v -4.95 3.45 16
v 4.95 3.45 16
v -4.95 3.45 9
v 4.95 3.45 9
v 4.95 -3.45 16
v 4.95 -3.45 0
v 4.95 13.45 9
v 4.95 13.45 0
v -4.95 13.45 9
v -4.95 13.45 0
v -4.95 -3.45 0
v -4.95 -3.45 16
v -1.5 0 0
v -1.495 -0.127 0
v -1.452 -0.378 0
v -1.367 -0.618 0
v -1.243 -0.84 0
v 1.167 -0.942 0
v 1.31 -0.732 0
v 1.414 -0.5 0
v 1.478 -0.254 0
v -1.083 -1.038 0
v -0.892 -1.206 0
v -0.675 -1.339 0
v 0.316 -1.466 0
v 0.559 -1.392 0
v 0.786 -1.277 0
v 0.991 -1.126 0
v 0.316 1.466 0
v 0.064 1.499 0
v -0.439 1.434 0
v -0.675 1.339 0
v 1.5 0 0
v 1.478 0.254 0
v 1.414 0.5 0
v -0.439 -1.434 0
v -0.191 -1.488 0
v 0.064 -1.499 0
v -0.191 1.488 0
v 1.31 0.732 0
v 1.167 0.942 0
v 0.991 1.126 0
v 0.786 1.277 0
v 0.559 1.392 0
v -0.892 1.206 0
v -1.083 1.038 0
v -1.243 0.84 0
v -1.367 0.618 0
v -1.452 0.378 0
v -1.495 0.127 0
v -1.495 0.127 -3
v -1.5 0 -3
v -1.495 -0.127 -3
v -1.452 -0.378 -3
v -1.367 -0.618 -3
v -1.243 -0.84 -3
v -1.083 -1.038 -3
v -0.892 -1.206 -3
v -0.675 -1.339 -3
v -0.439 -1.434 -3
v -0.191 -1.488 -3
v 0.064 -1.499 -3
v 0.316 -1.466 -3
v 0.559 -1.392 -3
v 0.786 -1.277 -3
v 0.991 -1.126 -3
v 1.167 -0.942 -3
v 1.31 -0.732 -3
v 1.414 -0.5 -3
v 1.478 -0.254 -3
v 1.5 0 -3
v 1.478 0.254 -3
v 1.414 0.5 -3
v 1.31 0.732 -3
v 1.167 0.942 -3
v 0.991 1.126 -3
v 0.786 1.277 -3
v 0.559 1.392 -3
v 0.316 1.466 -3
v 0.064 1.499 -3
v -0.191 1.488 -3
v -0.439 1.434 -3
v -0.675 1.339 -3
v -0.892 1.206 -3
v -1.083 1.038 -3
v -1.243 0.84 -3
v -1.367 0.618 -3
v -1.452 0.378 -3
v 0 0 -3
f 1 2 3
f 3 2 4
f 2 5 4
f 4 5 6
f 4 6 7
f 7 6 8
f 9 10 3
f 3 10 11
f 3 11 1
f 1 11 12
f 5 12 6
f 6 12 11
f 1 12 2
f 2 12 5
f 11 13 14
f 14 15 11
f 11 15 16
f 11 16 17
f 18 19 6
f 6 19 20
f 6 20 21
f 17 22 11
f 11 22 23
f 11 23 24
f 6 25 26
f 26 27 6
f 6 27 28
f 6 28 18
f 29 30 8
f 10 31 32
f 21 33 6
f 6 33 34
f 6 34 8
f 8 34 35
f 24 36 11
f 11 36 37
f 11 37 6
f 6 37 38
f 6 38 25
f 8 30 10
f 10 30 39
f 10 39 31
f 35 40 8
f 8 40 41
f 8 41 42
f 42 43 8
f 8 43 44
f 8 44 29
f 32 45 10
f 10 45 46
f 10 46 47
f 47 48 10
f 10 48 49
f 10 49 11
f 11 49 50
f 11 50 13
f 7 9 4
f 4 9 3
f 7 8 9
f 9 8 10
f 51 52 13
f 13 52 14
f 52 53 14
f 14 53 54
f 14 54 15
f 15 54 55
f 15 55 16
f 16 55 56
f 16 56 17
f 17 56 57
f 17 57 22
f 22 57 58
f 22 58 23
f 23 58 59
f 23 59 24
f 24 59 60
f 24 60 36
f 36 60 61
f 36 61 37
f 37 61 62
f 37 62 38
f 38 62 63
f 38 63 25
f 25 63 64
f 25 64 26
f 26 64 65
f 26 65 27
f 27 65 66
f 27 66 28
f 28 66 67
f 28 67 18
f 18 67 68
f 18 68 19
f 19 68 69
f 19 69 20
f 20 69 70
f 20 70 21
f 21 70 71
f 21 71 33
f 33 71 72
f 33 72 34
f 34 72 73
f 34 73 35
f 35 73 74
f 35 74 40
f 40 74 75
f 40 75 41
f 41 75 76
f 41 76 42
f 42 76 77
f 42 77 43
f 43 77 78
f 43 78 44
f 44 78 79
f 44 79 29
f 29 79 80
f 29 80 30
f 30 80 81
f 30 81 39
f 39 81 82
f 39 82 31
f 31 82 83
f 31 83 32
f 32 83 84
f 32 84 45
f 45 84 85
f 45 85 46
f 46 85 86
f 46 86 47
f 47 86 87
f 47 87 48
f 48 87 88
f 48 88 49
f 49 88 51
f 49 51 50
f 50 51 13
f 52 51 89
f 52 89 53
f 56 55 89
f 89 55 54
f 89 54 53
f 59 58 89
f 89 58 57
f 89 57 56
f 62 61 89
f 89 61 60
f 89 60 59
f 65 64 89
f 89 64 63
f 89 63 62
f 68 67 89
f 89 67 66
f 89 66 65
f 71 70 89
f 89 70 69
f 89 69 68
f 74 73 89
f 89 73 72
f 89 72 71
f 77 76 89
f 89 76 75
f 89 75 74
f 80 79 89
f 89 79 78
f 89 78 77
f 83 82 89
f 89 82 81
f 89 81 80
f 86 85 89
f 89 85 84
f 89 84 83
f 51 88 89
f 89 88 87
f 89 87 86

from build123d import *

# Parameters (mm, degrees)
SKETCH1_W           = 9.9
SKETCH1_H           = 6.9
BOSS_EXTRUDE1_DEPTH = 16
SKETCH2_W           = 9.9
SKETCH2_H           = 9
BOSS_EXTRUDE2_DEPTH = 10
SKETCH3_R           = 1.5
BOSS_EXTRUDE3_DEPTH = 3


with BuildPart() as part:
    # Sketch1 → Boss-Extrude1 (new body)
    with BuildSketch(Plane.XY):
        Rectangle(SKETCH1_W, SKETCH1_H)
    extrude(amount=BOSS_EXTRUDE1_DEPTH)

    # Sketch2 → Boss-Extrude2 (add)
    with BuildSketch(Plane(origin=(0, 3.45, 0), x_dir=(1, 0, 0), z_dir=(0, 1, 0))):
        with Locations((0, -4.5)):
            Rectangle(SKETCH2_W, SKETCH2_H)
    extrude(amount=BOSS_EXTRUDE2_DEPTH)

    # Sketch3 → Boss-Extrude3 (add)
    with BuildSketch(Plane(origin=(0, 0, 0), x_dir=(-1, 0, 0), z_dir=(0, 0, -1))):
        Circle(SKETCH3_R)
    extrude(amount=BOSS_EXTRUDE3_DEPTH)


solid = part.part
